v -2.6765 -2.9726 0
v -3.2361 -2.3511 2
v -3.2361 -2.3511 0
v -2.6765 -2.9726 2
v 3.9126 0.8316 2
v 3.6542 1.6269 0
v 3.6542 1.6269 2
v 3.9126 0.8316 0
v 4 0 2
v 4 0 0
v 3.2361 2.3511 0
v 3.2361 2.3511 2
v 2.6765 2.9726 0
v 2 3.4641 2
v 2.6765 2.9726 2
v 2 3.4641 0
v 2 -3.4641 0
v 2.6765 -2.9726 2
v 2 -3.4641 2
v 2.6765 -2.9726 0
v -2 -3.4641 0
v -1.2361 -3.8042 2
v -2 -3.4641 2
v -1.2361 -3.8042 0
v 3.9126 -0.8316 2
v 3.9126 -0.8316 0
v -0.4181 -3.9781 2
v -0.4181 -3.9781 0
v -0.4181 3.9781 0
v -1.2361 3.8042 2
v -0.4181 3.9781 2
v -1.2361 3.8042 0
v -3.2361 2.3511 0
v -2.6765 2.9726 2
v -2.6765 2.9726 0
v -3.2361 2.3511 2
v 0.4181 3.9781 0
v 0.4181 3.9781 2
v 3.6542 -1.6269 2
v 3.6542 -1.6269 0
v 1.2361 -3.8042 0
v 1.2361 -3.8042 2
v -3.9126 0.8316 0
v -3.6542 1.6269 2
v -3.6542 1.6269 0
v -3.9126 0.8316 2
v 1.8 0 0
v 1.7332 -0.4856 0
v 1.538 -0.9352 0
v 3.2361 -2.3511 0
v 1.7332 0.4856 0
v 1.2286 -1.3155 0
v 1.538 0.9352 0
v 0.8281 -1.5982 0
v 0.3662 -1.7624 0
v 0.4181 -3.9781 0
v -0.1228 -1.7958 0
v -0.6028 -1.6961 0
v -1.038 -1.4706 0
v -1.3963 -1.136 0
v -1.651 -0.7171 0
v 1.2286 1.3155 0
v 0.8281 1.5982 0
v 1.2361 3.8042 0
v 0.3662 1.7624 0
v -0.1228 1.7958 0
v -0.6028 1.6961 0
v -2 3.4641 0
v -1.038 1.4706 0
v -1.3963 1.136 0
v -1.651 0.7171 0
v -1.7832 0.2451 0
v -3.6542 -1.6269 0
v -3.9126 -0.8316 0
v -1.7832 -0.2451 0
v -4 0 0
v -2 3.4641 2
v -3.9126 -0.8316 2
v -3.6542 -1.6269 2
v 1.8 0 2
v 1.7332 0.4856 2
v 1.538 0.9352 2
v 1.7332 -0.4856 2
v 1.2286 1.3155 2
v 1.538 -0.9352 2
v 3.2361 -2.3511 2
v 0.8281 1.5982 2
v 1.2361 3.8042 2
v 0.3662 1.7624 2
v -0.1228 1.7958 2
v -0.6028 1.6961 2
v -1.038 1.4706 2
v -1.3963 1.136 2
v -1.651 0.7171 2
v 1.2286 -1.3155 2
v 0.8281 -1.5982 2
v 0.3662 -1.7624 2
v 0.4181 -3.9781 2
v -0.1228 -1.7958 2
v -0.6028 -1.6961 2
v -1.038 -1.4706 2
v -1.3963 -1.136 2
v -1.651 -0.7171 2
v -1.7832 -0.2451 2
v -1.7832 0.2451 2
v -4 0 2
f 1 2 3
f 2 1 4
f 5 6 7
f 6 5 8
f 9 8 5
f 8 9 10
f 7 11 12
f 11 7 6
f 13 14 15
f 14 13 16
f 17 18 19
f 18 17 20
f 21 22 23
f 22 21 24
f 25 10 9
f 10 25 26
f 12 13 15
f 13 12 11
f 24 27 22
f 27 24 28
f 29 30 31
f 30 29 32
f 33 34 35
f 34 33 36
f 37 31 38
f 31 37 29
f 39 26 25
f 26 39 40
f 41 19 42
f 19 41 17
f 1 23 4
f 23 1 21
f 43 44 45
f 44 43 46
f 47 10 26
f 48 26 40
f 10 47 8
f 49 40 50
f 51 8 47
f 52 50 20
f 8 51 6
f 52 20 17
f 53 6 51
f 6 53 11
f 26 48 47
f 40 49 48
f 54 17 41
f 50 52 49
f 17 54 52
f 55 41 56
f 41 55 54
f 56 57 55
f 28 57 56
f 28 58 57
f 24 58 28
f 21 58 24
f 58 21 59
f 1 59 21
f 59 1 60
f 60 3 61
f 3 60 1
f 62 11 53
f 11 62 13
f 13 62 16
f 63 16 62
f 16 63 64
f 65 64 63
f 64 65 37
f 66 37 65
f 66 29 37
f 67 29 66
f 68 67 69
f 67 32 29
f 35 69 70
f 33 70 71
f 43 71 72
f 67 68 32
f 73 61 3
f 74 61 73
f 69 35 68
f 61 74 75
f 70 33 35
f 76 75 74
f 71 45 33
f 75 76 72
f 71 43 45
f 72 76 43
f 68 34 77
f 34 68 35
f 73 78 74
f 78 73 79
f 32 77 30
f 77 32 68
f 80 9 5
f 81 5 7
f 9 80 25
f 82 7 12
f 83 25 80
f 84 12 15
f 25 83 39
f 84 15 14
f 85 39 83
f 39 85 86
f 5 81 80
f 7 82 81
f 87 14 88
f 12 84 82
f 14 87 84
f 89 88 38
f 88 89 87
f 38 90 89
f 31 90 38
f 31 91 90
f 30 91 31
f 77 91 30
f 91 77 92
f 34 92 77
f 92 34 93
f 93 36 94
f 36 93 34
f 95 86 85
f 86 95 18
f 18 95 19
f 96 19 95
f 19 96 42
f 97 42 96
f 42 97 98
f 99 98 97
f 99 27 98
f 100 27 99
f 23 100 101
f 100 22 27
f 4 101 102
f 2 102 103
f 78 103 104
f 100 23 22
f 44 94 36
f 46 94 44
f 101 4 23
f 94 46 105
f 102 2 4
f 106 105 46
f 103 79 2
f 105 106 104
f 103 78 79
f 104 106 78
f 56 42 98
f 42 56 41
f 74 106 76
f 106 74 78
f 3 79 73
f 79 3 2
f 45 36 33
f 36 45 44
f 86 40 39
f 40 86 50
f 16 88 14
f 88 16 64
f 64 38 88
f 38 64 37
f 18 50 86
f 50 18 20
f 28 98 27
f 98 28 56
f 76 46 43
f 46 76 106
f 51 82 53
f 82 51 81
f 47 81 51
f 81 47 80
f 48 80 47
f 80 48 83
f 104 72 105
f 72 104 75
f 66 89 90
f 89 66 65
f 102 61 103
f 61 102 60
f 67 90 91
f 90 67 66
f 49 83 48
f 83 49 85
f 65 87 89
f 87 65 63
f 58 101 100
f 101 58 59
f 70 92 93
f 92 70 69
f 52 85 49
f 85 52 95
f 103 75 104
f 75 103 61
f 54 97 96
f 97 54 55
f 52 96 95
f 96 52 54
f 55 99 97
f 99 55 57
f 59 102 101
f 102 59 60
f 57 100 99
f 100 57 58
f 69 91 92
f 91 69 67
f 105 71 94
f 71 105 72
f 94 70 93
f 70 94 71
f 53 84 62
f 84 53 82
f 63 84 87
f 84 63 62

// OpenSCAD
// Simple stepper motor screw spacers for nema14tle board
//
// Copyright (C) 2021  Kevin O'Connor <kevin@koconnor.net>
//
// This file may be distributed under the terms of the GNU GPLv3 license.

screw_dia = 3.6;
spacer_dia = 8;
CUT = 0.01;
$fs = 0.5;

module stepper_spacer(height) {
    difference() {
        cylinder(d=spacer_dia, h=height);
        translate([0, 0, -CUT])
        cylinder(d=screw_dia, h=height + 2*CUT);
    }
}

//
// Object selection
//

stepper_spacer(2);
